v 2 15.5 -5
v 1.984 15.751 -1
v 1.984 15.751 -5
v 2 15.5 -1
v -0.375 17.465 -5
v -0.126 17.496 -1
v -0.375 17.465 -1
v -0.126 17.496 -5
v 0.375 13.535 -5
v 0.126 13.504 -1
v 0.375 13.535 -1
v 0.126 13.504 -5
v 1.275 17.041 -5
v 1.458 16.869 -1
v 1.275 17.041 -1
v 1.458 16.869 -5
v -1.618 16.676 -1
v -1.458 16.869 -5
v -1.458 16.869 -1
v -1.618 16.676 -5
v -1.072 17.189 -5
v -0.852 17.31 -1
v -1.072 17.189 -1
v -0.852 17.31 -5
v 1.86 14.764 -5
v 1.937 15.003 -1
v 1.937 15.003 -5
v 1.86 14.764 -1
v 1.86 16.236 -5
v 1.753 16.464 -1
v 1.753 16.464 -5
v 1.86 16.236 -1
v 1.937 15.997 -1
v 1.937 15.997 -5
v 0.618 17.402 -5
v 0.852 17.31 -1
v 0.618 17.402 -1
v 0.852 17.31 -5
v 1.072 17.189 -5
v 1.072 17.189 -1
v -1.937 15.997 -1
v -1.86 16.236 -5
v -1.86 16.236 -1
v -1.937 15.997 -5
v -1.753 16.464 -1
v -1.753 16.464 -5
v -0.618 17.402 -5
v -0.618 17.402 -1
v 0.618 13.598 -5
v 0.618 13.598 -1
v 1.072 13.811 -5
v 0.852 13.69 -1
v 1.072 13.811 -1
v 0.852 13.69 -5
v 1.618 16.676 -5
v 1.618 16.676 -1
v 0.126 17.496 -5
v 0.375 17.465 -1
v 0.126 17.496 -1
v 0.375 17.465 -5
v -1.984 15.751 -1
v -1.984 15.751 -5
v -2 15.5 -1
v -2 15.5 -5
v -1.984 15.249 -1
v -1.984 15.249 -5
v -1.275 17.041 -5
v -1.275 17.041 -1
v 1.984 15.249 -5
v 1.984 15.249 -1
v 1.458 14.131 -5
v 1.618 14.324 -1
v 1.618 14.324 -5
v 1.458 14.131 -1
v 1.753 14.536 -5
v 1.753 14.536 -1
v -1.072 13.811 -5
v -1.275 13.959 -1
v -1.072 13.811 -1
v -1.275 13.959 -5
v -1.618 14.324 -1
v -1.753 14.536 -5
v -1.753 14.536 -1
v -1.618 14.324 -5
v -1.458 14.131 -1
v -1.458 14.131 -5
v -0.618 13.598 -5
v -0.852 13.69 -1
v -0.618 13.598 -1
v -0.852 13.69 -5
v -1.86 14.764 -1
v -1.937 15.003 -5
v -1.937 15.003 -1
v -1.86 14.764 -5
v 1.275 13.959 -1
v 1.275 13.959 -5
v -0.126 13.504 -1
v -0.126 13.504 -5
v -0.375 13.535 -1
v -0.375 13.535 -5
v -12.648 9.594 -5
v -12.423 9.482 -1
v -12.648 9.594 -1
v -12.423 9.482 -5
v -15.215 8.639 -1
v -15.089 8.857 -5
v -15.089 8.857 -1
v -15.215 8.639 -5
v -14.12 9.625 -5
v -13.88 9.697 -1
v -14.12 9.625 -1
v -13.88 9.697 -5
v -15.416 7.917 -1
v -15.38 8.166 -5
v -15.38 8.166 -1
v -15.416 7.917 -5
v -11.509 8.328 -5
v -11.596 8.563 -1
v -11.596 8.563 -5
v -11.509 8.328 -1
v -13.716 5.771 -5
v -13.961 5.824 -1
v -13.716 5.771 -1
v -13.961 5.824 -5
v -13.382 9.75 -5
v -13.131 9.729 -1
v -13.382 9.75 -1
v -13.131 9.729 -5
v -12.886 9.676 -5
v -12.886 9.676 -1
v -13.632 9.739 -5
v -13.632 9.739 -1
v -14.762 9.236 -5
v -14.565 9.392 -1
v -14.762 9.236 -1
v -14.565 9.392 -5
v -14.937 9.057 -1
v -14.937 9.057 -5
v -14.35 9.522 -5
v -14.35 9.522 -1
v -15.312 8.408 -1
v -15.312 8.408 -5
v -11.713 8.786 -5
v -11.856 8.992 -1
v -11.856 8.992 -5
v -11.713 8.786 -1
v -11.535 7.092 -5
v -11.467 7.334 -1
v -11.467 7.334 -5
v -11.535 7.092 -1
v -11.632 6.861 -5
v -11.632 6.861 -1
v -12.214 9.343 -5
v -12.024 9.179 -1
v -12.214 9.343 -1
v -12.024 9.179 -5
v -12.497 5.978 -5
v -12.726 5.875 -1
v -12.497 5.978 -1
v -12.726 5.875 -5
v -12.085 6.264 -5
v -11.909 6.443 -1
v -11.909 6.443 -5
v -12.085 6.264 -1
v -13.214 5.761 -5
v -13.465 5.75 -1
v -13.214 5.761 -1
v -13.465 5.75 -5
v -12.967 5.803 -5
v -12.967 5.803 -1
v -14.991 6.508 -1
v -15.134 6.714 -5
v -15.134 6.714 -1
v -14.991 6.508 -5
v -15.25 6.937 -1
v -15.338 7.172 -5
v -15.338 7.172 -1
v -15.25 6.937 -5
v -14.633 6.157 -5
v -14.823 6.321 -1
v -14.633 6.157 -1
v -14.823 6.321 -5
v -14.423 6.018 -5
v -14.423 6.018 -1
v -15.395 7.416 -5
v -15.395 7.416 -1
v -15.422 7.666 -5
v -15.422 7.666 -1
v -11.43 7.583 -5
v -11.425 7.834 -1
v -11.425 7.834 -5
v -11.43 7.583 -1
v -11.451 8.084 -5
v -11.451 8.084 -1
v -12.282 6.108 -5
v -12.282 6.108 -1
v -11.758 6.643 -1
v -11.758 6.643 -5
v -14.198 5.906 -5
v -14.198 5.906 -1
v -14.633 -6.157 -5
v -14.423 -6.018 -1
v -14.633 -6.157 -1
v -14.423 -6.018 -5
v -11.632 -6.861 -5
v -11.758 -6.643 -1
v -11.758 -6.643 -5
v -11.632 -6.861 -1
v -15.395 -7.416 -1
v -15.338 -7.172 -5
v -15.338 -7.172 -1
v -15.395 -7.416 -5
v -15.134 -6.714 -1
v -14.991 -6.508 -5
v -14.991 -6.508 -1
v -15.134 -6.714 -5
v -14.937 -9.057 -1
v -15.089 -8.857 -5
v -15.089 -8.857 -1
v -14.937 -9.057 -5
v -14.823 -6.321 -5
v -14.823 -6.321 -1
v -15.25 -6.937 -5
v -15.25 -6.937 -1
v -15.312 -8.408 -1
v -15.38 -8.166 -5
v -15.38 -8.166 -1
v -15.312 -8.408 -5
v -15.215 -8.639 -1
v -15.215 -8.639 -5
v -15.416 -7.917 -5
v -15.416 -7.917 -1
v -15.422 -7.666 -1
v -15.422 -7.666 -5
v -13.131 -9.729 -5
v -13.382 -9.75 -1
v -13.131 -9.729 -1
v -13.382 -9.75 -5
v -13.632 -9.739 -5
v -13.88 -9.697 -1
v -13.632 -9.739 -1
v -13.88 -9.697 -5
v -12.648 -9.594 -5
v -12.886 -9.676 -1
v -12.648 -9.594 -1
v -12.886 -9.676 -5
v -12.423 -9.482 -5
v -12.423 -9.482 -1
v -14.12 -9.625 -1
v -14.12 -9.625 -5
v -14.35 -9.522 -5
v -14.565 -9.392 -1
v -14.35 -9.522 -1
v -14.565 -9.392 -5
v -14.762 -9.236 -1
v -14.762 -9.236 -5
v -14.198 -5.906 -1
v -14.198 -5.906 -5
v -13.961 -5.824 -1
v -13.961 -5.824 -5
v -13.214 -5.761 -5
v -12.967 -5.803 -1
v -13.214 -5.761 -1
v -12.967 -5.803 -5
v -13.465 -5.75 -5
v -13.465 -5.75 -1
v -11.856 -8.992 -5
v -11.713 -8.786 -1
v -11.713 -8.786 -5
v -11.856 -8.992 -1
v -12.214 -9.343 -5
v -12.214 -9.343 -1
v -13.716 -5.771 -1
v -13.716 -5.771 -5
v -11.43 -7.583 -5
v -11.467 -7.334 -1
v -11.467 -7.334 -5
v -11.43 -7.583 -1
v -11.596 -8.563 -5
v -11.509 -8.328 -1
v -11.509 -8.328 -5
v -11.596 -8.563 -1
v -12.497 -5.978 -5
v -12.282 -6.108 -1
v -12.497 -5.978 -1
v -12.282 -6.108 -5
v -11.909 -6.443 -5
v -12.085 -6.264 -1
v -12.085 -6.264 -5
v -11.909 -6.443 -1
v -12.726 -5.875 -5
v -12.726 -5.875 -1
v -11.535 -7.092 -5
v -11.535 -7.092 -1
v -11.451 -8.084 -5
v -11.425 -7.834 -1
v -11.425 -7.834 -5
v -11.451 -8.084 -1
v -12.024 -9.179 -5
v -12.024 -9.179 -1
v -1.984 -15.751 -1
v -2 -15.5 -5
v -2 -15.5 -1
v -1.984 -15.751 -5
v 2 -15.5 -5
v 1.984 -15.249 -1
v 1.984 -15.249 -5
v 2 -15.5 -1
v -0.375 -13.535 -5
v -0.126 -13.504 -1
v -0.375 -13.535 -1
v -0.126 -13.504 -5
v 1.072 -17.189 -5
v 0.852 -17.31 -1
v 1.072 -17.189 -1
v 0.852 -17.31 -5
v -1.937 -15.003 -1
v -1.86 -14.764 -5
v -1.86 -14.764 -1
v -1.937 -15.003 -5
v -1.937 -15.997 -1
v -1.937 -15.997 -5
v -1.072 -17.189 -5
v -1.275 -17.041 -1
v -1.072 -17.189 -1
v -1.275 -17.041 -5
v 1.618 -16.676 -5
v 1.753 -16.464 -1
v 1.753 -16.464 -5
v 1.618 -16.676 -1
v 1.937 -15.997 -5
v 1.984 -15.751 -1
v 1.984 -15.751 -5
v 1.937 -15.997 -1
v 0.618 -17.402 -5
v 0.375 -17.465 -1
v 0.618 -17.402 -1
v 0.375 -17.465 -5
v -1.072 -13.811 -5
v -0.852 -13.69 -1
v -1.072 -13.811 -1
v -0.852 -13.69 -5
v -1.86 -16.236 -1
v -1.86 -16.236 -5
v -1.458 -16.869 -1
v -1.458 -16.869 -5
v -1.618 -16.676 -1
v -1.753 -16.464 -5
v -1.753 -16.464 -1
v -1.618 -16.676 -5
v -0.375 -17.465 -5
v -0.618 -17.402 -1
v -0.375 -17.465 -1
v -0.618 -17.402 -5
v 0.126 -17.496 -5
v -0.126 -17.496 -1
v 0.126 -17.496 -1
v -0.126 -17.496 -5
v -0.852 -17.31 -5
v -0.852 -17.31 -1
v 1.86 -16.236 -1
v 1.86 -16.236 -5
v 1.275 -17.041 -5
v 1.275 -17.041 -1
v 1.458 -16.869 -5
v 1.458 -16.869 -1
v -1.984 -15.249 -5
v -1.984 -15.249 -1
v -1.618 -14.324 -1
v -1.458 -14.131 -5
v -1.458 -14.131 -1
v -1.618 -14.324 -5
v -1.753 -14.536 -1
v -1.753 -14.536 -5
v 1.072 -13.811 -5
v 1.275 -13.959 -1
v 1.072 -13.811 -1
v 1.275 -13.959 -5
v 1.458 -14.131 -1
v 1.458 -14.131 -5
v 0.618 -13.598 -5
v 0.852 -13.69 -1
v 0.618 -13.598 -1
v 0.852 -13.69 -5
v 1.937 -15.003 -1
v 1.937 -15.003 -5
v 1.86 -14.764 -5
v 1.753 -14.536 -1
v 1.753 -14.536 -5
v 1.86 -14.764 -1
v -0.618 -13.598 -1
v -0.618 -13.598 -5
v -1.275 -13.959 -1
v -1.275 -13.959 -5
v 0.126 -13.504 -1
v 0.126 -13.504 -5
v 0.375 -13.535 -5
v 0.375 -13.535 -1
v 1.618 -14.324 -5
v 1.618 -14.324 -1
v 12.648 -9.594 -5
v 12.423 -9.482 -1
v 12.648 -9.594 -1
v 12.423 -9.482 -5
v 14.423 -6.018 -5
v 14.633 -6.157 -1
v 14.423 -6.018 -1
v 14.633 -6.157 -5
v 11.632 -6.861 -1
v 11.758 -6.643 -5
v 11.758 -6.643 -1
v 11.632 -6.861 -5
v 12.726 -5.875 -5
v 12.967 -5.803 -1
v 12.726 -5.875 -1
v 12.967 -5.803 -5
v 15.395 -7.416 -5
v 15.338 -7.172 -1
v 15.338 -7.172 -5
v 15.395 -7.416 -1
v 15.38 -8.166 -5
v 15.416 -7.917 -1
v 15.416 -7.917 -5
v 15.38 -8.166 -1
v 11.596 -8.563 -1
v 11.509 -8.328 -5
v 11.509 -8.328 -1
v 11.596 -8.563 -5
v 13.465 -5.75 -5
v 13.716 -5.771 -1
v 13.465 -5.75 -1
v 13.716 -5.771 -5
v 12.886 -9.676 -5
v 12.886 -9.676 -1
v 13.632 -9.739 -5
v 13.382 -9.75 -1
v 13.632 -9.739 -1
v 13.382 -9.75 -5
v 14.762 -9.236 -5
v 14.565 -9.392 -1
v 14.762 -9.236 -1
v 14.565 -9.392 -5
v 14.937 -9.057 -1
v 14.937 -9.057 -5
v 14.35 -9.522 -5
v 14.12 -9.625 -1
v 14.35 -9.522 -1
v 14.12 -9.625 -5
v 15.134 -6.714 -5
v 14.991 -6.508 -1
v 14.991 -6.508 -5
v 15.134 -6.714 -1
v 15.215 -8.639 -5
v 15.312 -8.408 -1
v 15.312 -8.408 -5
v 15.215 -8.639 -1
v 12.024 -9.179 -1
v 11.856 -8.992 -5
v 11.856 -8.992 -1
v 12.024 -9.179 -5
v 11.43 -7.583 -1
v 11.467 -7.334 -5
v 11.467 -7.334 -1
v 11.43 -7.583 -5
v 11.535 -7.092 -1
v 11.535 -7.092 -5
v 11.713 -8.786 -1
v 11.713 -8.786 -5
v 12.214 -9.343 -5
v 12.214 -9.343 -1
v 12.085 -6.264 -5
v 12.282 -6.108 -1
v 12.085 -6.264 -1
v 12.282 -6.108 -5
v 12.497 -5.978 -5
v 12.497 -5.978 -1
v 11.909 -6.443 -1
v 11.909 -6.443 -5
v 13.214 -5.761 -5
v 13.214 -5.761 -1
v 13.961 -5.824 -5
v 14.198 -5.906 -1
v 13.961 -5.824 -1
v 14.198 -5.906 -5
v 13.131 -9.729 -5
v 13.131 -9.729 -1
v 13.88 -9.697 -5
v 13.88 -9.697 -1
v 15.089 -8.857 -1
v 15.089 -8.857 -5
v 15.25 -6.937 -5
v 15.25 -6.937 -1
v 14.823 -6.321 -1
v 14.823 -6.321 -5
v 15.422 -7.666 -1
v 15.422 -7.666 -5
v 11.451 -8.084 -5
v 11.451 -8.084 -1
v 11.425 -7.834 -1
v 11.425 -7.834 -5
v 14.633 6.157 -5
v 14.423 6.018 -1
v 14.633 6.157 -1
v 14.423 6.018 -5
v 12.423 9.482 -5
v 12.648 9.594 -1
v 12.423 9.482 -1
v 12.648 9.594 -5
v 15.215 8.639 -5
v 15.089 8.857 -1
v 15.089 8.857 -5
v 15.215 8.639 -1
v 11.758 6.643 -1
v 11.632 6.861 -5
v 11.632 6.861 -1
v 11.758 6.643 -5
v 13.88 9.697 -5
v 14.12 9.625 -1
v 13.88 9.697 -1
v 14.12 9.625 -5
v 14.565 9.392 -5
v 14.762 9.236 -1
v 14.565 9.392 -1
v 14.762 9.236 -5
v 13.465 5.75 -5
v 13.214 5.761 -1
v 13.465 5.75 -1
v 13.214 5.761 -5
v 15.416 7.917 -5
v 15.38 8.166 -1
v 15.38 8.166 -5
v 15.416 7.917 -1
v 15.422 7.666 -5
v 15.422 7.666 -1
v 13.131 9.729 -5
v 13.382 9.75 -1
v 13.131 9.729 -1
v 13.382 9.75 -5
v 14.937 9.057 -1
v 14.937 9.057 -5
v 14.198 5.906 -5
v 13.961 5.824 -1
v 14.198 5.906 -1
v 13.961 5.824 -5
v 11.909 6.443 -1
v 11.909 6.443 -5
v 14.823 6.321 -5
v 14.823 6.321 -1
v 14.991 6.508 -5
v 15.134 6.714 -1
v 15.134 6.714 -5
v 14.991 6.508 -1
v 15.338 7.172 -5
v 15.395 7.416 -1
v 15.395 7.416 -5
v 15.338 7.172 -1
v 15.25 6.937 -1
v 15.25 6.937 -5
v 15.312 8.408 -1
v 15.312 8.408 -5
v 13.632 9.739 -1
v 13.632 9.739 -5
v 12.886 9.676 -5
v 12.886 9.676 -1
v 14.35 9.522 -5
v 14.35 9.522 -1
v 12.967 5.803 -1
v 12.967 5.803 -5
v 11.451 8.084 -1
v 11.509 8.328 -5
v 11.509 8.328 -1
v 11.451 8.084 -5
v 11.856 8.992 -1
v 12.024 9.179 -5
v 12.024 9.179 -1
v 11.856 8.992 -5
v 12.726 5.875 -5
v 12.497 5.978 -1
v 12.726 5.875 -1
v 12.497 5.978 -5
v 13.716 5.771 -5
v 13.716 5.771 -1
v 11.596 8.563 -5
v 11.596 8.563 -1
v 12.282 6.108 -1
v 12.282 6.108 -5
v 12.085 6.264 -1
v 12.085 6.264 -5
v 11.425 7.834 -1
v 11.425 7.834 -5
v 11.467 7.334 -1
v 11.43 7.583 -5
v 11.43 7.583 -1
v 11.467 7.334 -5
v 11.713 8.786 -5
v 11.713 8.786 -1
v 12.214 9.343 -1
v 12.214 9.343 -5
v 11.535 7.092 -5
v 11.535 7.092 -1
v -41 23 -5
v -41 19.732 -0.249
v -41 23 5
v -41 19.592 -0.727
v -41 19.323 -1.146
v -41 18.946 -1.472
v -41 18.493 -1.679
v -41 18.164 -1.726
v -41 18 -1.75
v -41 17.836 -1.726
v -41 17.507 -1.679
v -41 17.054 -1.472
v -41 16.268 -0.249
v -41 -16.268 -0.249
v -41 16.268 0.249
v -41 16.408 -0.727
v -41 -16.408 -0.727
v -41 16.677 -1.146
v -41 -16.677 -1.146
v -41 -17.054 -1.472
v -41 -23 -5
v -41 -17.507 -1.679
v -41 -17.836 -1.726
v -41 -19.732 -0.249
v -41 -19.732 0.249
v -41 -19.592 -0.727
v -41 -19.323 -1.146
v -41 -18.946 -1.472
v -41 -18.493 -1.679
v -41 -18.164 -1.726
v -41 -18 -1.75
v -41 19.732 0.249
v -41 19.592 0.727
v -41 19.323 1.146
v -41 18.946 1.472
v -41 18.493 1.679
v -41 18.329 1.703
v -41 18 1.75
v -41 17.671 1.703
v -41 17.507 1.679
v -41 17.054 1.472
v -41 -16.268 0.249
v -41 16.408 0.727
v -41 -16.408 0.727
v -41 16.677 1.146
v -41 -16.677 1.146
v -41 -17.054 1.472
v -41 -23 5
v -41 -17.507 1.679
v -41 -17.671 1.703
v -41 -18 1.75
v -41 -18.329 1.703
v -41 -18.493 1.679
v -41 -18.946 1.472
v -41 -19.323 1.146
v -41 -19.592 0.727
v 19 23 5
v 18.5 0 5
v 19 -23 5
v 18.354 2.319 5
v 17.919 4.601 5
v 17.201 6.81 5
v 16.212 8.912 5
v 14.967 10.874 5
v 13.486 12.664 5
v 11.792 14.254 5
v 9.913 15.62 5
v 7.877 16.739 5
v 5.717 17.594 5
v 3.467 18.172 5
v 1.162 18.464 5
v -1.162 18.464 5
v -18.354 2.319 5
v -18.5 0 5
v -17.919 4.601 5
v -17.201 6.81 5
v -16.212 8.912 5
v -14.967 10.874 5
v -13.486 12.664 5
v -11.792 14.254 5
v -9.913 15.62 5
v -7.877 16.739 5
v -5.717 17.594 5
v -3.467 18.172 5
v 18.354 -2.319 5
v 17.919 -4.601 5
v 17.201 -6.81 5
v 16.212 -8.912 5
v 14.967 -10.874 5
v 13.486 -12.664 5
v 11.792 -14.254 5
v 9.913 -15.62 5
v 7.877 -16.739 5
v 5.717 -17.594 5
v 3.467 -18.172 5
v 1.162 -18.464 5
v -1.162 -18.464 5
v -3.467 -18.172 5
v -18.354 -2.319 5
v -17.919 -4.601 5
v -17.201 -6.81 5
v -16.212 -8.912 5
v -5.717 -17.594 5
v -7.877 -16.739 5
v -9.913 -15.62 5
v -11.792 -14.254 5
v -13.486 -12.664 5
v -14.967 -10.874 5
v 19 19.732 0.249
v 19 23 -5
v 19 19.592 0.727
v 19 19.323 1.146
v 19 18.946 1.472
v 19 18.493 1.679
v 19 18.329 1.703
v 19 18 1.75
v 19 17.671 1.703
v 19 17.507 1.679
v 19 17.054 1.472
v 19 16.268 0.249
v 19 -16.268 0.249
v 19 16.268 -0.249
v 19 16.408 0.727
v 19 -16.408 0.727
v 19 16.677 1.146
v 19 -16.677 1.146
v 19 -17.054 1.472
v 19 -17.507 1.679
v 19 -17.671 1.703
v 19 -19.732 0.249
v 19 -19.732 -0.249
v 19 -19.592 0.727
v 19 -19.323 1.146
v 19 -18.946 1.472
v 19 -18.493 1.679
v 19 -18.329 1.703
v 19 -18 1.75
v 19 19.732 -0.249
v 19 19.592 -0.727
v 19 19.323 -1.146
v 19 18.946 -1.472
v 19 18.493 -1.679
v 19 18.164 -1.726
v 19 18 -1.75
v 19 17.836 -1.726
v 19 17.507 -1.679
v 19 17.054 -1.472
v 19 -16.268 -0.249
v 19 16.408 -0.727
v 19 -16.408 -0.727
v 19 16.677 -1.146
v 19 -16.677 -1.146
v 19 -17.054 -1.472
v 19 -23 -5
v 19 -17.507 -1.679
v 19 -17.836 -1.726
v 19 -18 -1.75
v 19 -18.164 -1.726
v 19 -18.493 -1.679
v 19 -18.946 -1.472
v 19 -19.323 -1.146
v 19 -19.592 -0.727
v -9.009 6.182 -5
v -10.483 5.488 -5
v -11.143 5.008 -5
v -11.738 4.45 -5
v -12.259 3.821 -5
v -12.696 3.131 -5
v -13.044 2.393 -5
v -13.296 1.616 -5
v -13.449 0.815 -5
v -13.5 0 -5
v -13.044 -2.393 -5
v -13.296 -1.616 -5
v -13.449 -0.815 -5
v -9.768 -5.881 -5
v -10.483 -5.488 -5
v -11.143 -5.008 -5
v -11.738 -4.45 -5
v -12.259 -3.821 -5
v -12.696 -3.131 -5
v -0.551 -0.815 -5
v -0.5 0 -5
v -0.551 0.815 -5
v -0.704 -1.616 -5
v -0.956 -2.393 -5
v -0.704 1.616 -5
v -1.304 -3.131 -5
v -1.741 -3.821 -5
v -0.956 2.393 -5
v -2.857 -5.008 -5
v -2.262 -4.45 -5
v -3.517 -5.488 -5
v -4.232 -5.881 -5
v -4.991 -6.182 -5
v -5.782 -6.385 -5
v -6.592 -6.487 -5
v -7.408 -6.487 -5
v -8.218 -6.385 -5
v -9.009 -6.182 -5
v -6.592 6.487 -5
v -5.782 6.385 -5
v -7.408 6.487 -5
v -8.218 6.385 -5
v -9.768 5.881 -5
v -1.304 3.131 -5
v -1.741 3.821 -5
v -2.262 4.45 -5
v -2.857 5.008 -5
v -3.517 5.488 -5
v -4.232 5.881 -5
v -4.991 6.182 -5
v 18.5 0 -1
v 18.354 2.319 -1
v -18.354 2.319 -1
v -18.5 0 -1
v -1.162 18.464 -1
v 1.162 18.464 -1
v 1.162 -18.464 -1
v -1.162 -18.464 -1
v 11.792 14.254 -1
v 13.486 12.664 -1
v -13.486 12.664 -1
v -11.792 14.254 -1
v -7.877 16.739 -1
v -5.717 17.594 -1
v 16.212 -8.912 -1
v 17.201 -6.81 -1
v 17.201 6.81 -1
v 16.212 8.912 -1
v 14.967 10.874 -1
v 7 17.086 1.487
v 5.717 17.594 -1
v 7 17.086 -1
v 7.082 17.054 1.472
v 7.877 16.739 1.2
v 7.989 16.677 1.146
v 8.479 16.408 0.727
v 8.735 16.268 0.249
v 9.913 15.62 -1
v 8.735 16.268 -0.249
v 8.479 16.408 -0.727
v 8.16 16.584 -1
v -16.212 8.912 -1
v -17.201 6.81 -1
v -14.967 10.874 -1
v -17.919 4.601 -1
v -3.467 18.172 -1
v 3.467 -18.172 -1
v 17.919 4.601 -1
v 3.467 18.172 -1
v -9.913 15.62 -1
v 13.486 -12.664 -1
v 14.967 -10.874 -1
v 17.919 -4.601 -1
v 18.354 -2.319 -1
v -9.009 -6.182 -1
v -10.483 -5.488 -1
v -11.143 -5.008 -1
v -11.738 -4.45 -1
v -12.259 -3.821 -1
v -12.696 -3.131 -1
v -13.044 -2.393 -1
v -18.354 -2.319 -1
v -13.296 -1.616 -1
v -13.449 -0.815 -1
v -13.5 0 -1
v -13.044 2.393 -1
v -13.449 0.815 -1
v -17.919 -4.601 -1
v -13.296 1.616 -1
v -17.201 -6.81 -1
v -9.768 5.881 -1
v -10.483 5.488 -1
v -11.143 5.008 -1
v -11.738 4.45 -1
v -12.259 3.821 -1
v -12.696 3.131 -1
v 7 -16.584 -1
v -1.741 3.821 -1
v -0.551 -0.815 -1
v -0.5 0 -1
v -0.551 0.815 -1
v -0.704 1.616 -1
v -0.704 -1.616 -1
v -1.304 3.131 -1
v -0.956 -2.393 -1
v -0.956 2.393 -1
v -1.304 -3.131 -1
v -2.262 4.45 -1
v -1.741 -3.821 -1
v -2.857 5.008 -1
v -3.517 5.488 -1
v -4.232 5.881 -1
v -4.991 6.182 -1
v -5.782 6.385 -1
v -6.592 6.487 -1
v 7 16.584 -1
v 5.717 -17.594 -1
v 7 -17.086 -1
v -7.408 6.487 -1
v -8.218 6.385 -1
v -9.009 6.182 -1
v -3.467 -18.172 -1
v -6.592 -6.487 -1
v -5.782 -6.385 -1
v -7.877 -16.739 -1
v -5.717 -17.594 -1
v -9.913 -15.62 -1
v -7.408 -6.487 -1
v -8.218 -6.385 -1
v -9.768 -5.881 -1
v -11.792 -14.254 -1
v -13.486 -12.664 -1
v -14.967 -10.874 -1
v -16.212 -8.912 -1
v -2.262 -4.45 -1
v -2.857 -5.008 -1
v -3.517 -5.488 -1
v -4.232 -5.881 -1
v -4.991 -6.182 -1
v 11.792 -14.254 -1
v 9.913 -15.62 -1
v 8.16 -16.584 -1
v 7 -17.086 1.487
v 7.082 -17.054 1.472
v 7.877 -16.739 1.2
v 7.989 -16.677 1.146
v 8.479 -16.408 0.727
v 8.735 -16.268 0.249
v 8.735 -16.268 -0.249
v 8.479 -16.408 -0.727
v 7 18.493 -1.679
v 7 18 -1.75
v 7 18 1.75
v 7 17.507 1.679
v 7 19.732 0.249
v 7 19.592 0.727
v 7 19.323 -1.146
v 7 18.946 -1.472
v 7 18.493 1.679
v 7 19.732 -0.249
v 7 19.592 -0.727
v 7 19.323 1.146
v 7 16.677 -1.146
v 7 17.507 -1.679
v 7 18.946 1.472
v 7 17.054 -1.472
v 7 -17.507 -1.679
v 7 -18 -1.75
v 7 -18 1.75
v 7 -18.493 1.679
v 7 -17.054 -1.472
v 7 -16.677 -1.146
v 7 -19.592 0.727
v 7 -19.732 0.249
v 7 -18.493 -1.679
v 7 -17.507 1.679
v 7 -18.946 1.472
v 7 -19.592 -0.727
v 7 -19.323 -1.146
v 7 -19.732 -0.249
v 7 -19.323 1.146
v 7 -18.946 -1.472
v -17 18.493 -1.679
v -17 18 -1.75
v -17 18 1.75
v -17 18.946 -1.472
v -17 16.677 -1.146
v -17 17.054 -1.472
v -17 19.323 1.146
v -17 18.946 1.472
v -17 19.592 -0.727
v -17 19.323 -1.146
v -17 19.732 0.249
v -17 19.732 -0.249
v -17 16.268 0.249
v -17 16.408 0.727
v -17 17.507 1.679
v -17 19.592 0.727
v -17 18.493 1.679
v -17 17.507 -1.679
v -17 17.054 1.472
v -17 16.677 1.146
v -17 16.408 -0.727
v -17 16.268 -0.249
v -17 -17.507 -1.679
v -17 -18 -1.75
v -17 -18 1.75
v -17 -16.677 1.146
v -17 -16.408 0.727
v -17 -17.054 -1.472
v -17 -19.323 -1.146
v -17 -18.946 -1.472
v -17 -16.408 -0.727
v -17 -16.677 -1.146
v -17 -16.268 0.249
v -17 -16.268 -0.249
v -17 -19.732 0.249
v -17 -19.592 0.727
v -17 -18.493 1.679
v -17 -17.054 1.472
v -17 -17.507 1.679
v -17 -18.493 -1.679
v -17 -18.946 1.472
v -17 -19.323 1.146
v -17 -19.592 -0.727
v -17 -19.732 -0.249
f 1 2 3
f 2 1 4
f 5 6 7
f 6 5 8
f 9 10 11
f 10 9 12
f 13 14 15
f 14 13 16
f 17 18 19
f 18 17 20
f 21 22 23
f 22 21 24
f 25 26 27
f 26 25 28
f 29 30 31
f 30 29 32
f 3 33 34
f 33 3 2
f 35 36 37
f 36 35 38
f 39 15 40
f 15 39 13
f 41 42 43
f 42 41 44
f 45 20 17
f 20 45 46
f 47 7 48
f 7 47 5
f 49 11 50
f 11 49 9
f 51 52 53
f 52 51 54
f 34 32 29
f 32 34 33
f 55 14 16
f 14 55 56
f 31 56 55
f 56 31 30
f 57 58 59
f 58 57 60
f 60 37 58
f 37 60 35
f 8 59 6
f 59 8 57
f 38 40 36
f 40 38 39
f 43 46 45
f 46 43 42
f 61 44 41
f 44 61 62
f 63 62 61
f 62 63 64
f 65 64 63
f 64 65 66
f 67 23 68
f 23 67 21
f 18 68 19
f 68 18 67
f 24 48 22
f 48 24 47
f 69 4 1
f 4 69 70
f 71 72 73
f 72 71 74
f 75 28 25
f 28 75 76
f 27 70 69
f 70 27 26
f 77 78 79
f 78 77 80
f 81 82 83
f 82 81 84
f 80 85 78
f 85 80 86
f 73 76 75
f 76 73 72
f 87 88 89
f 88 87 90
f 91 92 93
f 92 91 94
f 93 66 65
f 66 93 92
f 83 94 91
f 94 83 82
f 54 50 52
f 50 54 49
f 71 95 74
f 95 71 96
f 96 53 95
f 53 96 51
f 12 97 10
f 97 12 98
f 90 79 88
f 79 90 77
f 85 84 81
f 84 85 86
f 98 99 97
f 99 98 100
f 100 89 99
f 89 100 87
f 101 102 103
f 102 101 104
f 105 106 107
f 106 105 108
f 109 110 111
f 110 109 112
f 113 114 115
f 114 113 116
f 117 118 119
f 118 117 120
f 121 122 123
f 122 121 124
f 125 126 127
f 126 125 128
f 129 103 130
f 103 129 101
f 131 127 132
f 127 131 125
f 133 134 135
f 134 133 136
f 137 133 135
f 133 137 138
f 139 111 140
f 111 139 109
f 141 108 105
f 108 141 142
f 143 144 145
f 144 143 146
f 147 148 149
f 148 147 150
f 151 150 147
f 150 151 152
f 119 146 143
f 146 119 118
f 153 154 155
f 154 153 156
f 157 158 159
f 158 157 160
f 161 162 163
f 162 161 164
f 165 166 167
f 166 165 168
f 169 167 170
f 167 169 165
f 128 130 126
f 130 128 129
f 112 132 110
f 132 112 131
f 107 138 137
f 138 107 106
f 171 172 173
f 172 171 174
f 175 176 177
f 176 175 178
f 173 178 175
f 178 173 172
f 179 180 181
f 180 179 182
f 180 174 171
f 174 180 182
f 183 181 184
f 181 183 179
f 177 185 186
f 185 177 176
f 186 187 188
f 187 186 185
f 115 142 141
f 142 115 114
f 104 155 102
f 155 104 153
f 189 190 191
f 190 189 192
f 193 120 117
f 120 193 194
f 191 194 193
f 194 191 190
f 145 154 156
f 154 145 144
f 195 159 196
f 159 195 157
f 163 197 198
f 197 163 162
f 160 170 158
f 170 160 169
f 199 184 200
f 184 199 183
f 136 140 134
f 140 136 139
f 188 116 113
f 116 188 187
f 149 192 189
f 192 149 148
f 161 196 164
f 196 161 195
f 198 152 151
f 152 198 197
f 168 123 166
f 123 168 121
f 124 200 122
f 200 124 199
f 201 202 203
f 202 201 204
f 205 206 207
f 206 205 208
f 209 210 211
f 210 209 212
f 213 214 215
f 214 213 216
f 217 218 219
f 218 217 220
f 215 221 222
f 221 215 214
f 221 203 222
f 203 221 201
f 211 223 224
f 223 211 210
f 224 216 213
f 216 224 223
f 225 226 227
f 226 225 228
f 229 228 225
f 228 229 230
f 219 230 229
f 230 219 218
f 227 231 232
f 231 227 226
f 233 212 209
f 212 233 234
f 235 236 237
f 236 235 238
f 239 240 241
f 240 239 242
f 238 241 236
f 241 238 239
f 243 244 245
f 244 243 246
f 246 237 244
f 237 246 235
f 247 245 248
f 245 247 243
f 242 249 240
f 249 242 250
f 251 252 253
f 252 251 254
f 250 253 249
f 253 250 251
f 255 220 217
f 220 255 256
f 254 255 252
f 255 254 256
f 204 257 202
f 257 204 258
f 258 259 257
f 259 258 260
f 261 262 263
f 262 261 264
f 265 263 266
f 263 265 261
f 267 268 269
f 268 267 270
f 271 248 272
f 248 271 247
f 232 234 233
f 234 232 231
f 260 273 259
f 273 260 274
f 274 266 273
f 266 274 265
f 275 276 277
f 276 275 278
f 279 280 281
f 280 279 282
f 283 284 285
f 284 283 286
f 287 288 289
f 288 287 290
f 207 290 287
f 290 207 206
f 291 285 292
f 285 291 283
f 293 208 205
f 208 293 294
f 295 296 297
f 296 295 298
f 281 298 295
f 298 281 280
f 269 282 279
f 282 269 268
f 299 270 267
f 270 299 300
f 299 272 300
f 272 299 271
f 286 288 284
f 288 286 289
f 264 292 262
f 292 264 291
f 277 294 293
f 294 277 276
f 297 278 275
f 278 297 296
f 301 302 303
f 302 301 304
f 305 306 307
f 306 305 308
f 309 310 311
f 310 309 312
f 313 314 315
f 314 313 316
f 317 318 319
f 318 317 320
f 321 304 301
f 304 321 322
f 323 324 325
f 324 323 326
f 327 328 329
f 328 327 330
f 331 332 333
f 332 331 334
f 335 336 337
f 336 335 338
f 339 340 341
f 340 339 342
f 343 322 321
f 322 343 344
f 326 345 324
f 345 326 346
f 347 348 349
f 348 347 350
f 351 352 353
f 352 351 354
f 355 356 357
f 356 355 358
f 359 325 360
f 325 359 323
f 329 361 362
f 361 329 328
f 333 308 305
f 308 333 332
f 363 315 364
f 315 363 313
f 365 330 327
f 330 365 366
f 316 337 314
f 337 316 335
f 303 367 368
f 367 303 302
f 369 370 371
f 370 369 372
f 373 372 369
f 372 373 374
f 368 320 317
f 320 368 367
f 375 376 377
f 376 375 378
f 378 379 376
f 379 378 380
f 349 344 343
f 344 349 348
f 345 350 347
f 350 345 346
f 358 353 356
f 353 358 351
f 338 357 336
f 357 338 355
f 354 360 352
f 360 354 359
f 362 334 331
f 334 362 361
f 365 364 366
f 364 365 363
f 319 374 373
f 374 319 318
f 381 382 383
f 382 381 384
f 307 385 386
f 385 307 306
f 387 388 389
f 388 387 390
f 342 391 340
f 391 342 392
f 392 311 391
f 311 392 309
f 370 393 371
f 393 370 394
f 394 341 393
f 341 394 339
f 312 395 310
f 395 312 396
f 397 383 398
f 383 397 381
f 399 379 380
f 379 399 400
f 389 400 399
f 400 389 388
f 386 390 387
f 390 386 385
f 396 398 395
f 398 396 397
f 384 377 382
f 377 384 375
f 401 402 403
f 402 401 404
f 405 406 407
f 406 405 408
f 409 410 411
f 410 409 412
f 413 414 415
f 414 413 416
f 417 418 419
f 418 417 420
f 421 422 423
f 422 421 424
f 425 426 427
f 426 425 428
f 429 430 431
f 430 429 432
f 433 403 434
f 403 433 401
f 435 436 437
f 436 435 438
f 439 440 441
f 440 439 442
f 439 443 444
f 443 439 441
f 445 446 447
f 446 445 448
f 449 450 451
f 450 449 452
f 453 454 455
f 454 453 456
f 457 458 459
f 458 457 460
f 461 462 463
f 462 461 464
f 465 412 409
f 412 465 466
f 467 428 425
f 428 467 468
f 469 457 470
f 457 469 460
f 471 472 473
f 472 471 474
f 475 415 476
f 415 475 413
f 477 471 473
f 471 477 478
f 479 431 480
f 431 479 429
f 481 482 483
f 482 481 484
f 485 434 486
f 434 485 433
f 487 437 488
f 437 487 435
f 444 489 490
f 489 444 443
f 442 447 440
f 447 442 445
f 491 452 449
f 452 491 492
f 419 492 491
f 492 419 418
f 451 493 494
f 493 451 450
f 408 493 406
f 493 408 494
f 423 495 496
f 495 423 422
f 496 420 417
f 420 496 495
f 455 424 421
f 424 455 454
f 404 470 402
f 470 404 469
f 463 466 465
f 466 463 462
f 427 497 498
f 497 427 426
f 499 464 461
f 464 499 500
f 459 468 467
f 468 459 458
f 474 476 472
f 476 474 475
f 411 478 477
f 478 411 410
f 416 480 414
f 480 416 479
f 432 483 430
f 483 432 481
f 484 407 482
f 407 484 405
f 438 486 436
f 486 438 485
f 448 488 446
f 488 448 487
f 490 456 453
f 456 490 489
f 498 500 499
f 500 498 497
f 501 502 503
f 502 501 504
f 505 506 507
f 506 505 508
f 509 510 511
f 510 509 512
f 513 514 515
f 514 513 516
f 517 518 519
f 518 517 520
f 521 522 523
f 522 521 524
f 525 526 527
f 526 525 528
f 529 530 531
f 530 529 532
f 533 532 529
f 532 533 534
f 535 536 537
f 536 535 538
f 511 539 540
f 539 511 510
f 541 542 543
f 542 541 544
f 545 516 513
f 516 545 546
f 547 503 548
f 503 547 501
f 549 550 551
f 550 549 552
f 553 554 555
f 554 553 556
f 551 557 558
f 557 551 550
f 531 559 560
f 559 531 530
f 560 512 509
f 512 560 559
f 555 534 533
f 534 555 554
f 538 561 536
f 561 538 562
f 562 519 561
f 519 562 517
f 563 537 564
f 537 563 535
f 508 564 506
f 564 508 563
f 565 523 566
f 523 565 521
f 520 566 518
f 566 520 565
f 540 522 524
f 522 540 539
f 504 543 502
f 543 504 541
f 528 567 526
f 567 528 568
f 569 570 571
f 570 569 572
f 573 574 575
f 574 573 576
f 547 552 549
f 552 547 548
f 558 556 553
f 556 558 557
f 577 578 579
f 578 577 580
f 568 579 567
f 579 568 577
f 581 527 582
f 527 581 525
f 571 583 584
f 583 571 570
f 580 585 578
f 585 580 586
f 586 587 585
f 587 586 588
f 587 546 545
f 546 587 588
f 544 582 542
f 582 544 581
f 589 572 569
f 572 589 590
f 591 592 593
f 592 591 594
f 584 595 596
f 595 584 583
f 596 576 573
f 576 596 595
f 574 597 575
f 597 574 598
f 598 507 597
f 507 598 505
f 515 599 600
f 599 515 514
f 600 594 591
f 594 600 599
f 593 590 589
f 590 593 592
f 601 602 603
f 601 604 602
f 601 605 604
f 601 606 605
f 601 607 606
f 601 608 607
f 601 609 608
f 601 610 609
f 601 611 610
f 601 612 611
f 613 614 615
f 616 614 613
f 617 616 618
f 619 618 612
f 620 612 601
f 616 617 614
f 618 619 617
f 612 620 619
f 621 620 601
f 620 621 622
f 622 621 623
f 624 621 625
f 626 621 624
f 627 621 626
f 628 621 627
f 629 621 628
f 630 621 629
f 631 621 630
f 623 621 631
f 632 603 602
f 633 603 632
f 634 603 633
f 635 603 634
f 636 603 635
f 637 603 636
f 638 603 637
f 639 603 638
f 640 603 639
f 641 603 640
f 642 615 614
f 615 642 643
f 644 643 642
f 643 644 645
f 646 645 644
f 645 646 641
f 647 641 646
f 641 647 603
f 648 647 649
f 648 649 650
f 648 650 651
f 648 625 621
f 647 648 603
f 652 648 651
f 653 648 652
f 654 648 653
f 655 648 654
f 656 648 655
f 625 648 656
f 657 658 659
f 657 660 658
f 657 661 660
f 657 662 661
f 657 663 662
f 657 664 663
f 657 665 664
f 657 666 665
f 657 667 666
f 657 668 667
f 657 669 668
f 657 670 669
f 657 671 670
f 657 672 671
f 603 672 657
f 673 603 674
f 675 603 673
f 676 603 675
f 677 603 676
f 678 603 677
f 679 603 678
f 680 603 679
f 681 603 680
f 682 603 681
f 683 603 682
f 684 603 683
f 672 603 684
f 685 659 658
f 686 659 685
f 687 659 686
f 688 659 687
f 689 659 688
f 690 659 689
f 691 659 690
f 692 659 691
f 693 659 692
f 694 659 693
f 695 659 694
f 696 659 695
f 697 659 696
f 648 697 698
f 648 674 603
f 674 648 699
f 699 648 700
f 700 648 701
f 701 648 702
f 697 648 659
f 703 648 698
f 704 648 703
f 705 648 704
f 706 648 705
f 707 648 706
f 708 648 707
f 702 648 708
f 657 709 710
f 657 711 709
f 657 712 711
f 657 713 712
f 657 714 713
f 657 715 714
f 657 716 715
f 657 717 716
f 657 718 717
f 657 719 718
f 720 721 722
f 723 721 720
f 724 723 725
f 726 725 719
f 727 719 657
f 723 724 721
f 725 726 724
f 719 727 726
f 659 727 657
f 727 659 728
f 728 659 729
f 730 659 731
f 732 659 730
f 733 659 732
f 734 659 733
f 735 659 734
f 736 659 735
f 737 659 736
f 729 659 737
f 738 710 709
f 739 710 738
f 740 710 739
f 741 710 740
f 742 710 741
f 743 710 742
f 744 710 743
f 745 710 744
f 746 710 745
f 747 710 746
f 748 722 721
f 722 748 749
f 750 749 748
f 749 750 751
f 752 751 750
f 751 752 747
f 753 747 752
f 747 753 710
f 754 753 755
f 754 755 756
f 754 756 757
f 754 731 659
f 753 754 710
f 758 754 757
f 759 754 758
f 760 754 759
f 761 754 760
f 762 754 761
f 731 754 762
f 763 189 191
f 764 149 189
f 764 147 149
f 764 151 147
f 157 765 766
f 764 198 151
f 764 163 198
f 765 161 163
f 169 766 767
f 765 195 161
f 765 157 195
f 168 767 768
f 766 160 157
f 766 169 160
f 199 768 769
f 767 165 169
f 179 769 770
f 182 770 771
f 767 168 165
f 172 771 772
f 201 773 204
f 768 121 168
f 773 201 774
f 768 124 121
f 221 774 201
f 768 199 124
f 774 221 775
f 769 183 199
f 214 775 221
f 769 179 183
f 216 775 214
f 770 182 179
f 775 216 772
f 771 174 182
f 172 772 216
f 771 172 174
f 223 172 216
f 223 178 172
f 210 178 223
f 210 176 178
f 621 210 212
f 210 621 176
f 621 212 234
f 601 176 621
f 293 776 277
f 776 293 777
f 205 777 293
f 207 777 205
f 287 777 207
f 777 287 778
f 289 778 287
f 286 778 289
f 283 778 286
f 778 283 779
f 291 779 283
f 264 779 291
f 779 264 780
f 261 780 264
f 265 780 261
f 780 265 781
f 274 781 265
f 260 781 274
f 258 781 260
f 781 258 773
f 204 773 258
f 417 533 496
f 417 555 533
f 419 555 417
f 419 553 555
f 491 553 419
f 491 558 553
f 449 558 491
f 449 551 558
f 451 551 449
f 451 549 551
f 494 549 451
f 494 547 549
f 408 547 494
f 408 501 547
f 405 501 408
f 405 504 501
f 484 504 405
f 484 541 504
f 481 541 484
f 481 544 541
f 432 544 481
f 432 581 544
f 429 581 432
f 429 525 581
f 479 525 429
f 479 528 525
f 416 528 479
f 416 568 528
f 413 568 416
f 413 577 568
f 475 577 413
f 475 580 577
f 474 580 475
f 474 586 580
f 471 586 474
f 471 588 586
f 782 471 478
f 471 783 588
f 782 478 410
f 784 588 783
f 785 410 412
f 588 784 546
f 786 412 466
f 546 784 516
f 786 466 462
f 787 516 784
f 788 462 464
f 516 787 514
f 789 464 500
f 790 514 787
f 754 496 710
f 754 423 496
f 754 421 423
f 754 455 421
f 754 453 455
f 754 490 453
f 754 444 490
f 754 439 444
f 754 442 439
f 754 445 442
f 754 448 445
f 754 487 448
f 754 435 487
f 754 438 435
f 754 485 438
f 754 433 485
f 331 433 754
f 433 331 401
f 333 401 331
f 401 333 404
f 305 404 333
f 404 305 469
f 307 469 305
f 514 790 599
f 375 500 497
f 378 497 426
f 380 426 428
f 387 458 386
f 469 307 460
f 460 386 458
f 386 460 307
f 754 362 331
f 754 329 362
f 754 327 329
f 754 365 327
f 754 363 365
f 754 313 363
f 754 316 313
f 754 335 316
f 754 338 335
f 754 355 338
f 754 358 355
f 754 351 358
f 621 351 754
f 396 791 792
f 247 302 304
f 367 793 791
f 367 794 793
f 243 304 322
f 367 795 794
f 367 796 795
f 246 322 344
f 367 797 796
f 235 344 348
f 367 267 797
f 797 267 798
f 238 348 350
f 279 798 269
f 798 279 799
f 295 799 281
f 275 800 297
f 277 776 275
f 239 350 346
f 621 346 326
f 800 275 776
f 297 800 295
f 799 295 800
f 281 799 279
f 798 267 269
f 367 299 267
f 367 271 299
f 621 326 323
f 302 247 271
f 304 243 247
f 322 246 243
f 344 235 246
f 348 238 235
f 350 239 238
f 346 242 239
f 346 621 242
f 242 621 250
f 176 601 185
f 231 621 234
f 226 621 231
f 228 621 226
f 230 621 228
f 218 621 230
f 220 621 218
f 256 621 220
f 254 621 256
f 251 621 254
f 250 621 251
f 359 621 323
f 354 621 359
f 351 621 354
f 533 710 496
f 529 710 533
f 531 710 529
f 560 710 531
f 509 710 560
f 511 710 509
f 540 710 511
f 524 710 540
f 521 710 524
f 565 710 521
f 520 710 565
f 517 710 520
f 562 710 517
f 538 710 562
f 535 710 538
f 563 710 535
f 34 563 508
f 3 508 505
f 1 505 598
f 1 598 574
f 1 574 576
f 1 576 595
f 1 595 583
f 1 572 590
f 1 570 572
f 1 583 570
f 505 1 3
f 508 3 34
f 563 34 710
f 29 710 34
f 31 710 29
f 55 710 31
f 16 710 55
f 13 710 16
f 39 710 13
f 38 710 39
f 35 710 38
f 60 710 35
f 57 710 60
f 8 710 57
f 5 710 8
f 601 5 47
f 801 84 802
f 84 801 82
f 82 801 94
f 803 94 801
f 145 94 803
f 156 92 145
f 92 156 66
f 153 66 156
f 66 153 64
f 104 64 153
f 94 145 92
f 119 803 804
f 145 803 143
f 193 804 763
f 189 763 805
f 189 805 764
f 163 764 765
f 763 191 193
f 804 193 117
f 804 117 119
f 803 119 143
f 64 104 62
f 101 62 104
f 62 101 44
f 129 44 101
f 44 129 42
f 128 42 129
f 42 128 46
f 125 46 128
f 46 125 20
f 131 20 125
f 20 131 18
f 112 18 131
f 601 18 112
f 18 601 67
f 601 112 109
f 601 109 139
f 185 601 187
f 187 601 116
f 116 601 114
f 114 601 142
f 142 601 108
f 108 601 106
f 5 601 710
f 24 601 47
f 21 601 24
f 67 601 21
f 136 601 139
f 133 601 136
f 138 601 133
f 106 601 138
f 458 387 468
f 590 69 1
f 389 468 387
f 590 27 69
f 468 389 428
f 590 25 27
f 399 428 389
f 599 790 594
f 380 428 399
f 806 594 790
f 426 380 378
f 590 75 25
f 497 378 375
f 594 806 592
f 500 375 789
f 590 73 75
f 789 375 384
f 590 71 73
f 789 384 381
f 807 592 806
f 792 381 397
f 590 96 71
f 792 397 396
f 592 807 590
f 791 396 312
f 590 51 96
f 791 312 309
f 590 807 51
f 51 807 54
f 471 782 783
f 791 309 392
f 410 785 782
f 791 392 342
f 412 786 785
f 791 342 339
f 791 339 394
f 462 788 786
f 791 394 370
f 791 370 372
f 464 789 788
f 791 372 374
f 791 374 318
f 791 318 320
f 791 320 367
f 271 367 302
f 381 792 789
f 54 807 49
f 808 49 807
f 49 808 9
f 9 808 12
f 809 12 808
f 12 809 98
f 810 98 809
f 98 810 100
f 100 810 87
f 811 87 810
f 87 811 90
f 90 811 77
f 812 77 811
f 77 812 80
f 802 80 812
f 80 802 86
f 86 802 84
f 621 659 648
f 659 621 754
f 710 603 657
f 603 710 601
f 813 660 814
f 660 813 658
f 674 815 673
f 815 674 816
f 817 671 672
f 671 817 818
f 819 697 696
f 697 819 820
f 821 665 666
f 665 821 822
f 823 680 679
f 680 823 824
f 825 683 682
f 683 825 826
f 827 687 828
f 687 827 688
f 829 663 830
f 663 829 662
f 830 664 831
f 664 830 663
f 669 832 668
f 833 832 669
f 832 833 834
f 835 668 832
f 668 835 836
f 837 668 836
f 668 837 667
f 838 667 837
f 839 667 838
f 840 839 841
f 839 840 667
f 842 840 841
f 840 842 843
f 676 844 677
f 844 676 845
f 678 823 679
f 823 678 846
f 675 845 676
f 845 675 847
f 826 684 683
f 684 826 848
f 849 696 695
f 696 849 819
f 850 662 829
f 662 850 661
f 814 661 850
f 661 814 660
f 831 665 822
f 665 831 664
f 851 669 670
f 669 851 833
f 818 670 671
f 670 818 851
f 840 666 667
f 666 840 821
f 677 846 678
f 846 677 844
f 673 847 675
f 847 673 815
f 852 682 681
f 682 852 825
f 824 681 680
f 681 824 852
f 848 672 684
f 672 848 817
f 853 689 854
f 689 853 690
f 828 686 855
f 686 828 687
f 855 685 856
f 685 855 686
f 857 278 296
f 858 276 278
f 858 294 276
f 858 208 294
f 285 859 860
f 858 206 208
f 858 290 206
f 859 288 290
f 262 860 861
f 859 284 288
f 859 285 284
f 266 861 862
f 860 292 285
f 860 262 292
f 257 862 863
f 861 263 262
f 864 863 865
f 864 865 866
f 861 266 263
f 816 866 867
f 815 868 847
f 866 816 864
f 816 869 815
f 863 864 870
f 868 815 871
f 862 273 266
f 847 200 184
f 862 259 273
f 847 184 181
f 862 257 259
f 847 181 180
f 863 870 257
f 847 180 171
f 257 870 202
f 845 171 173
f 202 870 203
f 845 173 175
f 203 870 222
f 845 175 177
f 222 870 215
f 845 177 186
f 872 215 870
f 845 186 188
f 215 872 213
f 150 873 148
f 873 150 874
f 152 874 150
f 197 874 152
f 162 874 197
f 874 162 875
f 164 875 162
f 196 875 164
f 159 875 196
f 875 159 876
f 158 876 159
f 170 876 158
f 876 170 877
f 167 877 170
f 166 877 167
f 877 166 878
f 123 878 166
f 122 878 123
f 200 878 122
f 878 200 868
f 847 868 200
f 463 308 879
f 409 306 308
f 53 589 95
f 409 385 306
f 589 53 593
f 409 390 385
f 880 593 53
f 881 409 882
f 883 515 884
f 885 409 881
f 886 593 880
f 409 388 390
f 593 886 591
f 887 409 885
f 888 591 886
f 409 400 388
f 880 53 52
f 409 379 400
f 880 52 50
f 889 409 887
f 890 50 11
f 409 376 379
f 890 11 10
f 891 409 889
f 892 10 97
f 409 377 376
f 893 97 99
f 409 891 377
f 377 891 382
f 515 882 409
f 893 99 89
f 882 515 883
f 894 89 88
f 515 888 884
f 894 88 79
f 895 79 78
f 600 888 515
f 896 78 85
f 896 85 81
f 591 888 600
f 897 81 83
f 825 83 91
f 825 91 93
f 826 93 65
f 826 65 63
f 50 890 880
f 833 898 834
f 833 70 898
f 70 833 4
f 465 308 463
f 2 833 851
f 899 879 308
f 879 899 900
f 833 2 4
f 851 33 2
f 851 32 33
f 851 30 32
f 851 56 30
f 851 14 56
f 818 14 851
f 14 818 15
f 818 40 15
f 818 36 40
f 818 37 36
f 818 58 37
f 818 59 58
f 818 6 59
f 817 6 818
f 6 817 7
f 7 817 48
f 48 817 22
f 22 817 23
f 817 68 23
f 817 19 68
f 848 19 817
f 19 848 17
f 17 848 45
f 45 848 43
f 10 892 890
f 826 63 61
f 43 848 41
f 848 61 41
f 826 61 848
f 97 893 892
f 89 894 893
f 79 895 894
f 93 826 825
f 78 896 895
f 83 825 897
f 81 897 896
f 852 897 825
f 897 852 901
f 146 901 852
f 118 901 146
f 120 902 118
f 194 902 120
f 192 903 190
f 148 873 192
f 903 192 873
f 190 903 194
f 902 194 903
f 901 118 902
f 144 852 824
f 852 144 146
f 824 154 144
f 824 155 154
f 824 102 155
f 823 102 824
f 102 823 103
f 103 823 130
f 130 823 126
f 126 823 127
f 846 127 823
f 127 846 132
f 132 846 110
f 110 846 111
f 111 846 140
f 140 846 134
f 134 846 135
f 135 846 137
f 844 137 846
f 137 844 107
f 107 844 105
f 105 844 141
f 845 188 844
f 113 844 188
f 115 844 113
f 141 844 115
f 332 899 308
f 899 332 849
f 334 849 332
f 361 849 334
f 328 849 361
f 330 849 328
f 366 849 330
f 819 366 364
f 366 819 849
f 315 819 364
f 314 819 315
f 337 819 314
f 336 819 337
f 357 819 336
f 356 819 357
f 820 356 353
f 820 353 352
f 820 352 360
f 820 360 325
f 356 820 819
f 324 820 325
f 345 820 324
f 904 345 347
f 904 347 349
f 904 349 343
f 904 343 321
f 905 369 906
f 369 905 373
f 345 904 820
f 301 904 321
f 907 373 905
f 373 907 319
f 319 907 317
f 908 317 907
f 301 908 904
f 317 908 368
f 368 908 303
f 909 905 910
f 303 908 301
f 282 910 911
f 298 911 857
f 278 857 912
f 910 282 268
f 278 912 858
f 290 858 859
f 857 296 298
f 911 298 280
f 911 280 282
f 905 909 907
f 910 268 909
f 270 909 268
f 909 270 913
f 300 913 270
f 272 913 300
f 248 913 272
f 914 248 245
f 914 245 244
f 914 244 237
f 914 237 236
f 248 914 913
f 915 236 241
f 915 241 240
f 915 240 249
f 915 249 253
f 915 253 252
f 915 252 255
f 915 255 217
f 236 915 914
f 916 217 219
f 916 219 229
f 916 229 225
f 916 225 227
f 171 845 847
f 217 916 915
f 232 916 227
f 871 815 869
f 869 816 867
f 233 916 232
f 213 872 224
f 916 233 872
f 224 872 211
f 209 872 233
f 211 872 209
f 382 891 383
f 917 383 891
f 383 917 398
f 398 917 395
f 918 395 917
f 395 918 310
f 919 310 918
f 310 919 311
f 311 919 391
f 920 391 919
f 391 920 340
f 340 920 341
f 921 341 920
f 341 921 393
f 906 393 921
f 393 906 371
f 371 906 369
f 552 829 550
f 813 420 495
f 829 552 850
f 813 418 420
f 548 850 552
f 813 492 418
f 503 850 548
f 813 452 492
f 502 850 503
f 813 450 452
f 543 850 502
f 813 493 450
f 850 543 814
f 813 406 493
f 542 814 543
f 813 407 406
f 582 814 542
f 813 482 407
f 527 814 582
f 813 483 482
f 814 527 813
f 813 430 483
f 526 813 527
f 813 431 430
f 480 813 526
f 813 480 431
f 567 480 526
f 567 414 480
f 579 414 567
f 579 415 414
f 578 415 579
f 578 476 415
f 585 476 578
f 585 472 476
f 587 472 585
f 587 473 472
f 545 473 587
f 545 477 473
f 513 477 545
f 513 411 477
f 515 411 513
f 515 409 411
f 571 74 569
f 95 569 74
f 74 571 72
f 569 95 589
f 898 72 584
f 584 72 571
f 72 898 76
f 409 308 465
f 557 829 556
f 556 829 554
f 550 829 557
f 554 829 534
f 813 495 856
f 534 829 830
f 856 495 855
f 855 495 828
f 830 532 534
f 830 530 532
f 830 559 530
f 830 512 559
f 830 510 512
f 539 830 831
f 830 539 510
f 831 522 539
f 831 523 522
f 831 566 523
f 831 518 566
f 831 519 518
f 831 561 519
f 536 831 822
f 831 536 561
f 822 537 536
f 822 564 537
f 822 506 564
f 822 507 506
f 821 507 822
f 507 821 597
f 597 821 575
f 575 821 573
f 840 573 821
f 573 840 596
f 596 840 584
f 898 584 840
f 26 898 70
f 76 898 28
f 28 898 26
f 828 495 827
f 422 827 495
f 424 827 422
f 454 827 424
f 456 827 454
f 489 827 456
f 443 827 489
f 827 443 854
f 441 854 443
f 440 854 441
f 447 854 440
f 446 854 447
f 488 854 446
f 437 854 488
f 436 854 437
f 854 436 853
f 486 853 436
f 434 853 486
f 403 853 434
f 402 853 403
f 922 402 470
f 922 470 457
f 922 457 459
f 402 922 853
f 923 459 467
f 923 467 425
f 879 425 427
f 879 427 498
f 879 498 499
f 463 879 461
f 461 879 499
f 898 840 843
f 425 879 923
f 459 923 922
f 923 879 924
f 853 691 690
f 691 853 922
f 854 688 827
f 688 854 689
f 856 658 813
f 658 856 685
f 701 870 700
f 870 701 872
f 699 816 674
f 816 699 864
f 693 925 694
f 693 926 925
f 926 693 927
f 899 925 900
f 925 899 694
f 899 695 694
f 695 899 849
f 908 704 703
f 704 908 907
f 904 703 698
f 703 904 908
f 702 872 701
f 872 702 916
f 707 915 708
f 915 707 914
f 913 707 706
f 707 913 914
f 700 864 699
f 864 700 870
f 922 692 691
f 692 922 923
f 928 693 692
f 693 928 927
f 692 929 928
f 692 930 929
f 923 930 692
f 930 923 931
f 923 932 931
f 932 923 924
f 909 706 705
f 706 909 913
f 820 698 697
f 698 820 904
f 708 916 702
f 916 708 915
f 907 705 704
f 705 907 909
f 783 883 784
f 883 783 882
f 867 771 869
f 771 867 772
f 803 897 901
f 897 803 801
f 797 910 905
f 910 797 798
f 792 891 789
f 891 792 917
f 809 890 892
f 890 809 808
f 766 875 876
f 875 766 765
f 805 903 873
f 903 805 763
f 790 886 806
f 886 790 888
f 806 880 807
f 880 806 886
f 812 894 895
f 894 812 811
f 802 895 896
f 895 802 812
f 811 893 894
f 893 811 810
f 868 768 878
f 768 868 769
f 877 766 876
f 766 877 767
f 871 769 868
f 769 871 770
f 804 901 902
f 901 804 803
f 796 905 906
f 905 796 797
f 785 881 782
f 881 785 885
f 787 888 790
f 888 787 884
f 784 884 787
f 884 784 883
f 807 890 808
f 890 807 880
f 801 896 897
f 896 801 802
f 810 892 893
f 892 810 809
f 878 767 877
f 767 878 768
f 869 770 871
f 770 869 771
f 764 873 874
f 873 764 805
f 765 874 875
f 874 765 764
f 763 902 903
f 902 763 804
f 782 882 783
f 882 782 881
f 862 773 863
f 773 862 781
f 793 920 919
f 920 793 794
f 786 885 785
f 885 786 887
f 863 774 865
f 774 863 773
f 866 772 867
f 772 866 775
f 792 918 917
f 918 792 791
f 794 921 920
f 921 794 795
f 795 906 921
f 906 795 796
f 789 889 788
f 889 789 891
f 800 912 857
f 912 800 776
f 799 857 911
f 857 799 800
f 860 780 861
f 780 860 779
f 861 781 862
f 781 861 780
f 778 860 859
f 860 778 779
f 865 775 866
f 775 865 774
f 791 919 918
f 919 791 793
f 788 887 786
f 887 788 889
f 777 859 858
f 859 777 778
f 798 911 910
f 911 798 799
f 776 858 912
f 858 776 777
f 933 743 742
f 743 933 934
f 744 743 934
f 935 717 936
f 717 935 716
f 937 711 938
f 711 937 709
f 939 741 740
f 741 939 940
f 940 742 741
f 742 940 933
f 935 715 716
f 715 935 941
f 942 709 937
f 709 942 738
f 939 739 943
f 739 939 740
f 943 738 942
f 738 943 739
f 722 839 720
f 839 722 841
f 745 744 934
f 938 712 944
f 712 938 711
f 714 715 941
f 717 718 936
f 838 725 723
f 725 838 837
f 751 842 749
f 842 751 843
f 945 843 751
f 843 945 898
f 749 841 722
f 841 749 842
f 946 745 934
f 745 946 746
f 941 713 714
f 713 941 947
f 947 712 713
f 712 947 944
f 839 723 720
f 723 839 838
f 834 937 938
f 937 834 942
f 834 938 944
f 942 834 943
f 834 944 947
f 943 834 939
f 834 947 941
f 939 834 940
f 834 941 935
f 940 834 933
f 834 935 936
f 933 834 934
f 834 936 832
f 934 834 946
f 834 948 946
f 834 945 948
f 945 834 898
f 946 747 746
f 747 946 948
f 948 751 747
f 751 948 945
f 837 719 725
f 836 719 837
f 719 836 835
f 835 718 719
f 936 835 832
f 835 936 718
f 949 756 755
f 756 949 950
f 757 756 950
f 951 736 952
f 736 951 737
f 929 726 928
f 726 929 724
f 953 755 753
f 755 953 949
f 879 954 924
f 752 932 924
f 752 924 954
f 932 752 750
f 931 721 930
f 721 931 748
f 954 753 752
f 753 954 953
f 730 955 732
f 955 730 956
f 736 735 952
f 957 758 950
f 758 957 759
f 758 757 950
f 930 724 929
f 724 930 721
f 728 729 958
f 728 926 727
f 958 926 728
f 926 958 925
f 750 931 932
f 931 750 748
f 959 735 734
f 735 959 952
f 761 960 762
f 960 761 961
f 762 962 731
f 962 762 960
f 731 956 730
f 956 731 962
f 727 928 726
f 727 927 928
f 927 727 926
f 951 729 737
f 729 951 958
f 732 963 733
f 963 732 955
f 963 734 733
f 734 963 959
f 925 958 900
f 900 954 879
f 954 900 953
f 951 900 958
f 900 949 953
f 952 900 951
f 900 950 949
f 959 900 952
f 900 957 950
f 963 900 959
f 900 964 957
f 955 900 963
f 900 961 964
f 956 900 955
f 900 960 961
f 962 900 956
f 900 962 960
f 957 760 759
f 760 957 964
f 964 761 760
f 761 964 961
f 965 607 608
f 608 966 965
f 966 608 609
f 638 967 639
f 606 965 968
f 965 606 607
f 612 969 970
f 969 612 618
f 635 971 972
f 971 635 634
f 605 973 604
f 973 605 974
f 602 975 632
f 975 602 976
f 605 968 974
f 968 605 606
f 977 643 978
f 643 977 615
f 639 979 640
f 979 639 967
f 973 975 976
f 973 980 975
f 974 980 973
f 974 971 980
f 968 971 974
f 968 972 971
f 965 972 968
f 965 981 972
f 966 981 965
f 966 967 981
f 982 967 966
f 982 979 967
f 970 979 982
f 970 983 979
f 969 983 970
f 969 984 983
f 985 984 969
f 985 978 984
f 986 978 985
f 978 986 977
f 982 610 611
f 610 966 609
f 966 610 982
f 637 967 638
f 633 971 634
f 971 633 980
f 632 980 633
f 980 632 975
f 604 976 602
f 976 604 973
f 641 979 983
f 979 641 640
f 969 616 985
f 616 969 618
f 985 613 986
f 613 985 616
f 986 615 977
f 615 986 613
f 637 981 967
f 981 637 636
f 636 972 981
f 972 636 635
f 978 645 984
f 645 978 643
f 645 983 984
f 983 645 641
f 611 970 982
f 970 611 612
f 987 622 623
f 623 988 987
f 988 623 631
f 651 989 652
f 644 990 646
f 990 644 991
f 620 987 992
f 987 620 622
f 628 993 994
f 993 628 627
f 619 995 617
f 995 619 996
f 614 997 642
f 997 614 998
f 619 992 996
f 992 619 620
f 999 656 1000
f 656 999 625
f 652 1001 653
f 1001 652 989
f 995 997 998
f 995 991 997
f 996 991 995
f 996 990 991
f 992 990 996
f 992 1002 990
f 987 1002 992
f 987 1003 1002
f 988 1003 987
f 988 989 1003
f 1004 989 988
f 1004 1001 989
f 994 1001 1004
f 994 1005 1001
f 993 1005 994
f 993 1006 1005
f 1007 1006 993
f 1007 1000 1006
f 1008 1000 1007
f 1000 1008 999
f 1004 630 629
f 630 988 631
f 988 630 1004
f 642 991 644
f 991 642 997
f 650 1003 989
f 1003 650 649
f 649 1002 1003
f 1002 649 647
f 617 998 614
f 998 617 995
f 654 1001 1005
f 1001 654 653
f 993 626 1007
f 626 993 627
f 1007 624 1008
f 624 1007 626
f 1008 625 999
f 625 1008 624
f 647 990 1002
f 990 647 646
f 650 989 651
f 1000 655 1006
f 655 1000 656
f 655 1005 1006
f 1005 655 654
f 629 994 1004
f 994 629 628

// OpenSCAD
slack = 0.5;
holes_radius = 15.5;
screw_M4 = 3.5 / 2;
thickness = 10;

module motor_support(){
  difference() {
    union() {
      // Main Body
      //translate([0, 0, 0])
      //  cylinder(h = thickness, r = 23, $fn = 50, center = true);
      translate([-30 + 36/2 + 1, 0, 0])
        cube(size = [60, 46, thickness], center = true);

     //translate([33, 46/2, 5 - 1e-2])
     //rotate([90, 0, 0])
     //linear_extrude(height = 46, center = false, convexity = 10, twist = 0)
     //  polygon( points = [[0, 0],[0, 10],[-10, 0]] );
    }
    // Motor hole
    translate([0, 0, thickness/2 - 1])
      cylinder(h = thickness, r = 36/2 + slack, $fn = 50, center = true);

    // Motor "bearing" hole
    translate([-7, 0, -1])
      cylinder(h = thickness, r = 12/2 + slack, $fn = 50, center = true);

    // Motor screw holes
    for (i = [0 : 5]) {
      rotate([0, 0, i * 60]) {
        // screw hole
        translate([0, holes_radius, -1])
          cylinder(h = thickness, r = 3/2 + slack, $fn = 50, center = true);

        // screw head hole
        //translate([0, holes_radius, -thickness/2])
        //  cylinder(h = 3, r = 6/2 + slack, $fn = 50, center = true);
      }

    }

    // support holes
    translate([25, 36/2, 0])
    rotate([0, 90, 0])
      cylinder(h = 36, r = screw_M4, $fs = 0.5, center = true);

    translate([25, -36/2, 0])
    rotate([0, 90, 0])
      cylinder(h = 36, r = screw_M4, $fs = 0.5, center = true);
    
    translate([25 - 60, 36/2, 0])
    rotate([0, 90, 0])
      cylinder(h = 36, r = screw_M4, $fs = 0.5, center = true);    
    
    translate([25 - 60, -36/2, 0])
    rotate([0, 90, 0])
      cylinder(h = 36, r = screw_M4, $fs = 0.5, center = true);
  }
}




//translate([0, 0, 5])
//  motor_support();
motor_support();
